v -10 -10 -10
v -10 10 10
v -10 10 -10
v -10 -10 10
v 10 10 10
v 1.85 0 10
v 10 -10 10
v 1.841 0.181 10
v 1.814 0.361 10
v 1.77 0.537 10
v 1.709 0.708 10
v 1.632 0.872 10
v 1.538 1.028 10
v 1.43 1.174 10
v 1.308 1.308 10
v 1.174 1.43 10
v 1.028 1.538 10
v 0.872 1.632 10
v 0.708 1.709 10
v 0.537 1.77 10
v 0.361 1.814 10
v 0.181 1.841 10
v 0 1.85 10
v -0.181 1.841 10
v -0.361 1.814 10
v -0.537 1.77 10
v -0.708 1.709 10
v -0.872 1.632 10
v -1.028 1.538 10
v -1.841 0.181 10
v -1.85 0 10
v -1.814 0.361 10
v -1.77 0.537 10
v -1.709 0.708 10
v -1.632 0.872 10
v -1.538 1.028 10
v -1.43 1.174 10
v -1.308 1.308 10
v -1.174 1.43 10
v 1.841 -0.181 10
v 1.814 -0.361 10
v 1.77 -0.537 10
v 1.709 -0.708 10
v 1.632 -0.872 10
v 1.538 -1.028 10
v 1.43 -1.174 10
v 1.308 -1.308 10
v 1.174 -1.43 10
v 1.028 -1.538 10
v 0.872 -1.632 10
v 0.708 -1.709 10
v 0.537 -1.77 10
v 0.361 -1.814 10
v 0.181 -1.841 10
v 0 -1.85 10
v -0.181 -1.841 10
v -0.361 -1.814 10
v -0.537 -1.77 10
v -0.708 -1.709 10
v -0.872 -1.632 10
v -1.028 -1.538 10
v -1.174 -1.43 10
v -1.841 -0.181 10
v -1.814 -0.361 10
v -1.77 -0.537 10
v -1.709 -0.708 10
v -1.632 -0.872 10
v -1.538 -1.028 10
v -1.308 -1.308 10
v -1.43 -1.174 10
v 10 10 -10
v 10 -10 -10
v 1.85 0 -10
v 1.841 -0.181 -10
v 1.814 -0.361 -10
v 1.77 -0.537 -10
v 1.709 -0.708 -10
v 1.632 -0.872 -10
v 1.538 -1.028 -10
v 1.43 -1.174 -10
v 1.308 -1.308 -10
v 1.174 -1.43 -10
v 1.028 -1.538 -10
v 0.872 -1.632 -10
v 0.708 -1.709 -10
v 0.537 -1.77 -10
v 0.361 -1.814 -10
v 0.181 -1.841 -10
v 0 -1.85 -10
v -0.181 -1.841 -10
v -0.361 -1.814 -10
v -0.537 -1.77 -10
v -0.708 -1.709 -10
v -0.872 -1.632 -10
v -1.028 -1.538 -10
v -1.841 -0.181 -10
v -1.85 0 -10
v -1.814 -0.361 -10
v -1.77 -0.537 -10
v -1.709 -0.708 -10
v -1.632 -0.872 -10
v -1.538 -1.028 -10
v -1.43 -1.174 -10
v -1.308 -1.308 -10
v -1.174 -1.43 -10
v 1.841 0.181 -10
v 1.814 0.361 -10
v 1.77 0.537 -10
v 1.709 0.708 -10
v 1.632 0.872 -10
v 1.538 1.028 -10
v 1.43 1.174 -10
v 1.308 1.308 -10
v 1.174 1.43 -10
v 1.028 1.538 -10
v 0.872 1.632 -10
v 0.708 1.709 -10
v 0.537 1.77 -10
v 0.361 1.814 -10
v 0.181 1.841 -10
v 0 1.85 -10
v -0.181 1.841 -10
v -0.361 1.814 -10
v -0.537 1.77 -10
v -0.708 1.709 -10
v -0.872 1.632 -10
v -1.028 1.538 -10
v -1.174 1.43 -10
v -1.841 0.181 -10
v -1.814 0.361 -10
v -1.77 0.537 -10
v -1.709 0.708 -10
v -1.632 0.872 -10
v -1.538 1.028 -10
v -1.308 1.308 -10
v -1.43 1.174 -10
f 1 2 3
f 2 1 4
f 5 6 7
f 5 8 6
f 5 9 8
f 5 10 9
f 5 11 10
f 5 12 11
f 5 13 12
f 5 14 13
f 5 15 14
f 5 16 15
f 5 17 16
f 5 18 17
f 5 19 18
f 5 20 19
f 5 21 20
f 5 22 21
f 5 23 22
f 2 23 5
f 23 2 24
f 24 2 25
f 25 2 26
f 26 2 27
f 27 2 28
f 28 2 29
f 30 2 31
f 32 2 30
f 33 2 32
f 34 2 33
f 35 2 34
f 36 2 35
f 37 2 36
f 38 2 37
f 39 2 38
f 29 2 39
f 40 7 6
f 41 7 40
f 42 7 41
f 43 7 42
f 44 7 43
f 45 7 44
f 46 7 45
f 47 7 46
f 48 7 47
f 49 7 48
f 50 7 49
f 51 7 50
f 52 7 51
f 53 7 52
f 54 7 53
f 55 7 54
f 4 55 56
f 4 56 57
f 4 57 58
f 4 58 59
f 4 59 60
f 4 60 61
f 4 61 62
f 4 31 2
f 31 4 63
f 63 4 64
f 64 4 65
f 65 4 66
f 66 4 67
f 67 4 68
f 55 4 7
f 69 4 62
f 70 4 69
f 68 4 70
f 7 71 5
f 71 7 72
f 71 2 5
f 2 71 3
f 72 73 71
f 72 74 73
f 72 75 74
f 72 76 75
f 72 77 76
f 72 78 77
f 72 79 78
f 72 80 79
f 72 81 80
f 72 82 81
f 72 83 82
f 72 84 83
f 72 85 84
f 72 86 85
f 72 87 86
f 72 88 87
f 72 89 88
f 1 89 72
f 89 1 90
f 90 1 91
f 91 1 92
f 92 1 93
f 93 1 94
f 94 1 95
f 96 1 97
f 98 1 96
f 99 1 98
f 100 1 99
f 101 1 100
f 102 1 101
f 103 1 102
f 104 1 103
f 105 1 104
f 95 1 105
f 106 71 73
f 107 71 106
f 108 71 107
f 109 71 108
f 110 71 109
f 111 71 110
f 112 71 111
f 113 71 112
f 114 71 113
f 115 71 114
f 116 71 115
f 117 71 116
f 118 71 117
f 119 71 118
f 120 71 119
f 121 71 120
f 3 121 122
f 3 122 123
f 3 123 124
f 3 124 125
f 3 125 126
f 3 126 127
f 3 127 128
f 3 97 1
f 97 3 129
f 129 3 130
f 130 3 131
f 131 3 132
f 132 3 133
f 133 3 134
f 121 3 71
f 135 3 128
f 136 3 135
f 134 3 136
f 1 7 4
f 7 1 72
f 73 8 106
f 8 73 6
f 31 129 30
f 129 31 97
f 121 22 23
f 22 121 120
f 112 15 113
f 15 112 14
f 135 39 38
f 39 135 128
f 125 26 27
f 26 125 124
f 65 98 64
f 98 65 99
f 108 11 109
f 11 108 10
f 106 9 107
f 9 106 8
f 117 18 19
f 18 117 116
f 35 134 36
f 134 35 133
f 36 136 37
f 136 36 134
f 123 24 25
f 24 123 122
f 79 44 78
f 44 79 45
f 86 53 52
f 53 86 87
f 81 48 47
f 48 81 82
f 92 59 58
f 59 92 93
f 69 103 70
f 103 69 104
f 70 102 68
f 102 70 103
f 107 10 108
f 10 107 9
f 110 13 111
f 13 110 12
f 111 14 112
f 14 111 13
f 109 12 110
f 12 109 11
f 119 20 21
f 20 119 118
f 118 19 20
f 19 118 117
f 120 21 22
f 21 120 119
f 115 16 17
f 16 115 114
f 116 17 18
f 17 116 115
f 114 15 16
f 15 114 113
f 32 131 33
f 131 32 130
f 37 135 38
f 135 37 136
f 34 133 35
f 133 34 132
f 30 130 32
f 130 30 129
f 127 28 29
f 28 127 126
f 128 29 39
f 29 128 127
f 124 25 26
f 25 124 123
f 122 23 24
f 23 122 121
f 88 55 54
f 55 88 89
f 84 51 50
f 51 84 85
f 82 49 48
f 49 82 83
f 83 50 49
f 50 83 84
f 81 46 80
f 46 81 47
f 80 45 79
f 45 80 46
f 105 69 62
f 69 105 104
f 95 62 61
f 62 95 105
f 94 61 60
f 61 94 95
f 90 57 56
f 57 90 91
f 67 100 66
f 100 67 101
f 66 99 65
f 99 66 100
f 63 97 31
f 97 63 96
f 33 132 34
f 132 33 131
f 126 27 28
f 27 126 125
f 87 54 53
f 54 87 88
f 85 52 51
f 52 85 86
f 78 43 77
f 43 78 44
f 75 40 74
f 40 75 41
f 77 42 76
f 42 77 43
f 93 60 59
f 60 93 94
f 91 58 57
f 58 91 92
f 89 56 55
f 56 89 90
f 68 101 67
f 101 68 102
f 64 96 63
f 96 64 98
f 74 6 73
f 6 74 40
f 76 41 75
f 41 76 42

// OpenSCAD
difference()    {    
cube(20,center=true);
translate([0,0,-10])  {    
cylinder(r=1.85, h= 30, $fn=64);
}    
}
